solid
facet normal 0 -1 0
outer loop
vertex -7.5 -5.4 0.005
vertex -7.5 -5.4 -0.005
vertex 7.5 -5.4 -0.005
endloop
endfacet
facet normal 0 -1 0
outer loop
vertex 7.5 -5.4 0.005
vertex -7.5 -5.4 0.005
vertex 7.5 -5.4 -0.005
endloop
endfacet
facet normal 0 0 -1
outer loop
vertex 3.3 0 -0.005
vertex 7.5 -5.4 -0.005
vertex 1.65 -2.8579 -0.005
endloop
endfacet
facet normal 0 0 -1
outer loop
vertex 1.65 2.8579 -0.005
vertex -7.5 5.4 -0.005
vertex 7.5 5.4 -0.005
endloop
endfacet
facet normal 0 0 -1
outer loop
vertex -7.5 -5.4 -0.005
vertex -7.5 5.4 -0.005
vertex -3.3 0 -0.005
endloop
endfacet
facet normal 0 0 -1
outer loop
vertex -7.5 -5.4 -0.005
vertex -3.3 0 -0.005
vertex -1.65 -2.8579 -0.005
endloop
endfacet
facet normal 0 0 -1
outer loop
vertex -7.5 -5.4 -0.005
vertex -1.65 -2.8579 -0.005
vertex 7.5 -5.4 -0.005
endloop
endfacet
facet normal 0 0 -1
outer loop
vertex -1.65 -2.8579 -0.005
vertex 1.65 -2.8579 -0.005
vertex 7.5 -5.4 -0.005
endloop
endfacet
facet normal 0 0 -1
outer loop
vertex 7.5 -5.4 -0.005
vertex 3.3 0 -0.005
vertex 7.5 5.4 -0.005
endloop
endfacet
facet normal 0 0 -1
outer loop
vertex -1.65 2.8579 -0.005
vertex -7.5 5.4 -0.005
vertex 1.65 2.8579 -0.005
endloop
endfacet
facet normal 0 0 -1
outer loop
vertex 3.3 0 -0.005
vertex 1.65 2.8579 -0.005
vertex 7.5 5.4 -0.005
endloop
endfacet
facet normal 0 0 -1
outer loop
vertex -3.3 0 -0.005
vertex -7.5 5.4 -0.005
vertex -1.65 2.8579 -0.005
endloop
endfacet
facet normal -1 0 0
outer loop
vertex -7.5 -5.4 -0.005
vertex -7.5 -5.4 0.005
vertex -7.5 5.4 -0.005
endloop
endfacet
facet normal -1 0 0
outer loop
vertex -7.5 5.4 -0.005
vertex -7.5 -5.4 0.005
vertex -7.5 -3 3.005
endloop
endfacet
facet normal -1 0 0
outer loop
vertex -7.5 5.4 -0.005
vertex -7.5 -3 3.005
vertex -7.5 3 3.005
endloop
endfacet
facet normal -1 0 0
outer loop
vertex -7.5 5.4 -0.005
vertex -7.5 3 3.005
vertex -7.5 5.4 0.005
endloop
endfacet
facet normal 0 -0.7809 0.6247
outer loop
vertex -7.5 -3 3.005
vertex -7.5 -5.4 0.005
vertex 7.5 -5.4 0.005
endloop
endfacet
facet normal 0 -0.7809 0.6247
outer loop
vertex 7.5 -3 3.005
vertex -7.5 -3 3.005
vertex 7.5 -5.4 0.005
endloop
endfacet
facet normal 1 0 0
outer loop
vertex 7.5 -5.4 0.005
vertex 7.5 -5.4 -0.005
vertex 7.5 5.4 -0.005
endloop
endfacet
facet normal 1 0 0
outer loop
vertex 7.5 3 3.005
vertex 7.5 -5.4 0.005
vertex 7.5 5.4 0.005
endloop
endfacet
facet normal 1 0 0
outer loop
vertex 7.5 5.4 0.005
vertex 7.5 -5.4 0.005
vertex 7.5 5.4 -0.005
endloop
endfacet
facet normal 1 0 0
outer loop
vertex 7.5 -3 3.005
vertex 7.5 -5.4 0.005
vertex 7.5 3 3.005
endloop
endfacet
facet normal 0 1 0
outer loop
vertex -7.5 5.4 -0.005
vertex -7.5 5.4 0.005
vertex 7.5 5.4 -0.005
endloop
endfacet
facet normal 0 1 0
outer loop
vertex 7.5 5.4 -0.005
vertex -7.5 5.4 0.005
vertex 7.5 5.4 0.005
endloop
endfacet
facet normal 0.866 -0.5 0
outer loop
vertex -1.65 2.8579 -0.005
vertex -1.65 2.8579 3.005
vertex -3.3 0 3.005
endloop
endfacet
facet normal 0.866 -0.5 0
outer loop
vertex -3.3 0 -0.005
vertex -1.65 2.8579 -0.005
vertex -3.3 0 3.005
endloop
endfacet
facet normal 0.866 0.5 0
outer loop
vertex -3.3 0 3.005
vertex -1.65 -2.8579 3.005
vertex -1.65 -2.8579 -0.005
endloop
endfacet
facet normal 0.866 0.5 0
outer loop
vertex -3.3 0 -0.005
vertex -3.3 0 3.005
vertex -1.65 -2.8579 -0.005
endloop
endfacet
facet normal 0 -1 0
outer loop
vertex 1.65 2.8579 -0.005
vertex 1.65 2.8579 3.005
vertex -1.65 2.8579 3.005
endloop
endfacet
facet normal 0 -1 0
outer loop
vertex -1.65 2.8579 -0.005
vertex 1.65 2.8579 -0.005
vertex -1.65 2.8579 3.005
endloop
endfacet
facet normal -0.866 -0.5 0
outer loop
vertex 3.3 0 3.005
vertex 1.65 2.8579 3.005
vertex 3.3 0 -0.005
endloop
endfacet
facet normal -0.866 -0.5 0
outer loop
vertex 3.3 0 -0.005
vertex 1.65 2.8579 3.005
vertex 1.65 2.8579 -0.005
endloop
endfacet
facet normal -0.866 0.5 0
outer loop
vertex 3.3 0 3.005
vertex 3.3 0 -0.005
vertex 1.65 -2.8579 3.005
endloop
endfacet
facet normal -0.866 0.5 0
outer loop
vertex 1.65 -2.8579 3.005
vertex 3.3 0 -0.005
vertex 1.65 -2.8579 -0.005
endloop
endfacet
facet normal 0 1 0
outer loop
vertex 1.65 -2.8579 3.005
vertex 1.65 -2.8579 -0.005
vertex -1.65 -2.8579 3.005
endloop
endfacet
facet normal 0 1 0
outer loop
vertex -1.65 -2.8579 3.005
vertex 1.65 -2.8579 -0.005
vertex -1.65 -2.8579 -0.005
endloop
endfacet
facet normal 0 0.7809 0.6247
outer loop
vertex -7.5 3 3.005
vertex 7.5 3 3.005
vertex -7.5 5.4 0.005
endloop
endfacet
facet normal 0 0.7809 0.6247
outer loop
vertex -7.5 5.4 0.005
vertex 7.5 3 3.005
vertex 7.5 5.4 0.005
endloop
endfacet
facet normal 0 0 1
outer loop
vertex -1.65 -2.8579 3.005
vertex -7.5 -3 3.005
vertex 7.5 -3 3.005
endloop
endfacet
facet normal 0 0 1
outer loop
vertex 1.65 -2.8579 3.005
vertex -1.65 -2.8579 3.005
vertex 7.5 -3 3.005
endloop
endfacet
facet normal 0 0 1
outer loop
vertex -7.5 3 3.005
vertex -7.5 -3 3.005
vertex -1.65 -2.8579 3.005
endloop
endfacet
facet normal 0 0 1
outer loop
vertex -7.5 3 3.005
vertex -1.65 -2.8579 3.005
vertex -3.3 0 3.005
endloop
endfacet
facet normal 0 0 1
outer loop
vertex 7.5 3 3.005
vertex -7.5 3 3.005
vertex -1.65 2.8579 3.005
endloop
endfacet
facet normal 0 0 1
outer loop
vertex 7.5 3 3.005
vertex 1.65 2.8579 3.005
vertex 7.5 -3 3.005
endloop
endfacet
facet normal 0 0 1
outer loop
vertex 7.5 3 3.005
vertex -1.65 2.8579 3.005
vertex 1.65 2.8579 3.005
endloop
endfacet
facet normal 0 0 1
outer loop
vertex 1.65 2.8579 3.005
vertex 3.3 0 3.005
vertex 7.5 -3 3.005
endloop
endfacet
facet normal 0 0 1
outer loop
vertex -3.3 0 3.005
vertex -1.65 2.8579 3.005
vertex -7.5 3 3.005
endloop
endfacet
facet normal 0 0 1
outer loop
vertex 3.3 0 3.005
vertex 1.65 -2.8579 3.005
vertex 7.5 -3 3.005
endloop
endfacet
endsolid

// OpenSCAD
difference(){

hull(){
cube([15,10.8,0.01],center=true);
translate([0,0,3.0])cube([15,6,0.01],center=true);
}

cylinder(r=3.3,h=20,$fn=6,center=true);

}
